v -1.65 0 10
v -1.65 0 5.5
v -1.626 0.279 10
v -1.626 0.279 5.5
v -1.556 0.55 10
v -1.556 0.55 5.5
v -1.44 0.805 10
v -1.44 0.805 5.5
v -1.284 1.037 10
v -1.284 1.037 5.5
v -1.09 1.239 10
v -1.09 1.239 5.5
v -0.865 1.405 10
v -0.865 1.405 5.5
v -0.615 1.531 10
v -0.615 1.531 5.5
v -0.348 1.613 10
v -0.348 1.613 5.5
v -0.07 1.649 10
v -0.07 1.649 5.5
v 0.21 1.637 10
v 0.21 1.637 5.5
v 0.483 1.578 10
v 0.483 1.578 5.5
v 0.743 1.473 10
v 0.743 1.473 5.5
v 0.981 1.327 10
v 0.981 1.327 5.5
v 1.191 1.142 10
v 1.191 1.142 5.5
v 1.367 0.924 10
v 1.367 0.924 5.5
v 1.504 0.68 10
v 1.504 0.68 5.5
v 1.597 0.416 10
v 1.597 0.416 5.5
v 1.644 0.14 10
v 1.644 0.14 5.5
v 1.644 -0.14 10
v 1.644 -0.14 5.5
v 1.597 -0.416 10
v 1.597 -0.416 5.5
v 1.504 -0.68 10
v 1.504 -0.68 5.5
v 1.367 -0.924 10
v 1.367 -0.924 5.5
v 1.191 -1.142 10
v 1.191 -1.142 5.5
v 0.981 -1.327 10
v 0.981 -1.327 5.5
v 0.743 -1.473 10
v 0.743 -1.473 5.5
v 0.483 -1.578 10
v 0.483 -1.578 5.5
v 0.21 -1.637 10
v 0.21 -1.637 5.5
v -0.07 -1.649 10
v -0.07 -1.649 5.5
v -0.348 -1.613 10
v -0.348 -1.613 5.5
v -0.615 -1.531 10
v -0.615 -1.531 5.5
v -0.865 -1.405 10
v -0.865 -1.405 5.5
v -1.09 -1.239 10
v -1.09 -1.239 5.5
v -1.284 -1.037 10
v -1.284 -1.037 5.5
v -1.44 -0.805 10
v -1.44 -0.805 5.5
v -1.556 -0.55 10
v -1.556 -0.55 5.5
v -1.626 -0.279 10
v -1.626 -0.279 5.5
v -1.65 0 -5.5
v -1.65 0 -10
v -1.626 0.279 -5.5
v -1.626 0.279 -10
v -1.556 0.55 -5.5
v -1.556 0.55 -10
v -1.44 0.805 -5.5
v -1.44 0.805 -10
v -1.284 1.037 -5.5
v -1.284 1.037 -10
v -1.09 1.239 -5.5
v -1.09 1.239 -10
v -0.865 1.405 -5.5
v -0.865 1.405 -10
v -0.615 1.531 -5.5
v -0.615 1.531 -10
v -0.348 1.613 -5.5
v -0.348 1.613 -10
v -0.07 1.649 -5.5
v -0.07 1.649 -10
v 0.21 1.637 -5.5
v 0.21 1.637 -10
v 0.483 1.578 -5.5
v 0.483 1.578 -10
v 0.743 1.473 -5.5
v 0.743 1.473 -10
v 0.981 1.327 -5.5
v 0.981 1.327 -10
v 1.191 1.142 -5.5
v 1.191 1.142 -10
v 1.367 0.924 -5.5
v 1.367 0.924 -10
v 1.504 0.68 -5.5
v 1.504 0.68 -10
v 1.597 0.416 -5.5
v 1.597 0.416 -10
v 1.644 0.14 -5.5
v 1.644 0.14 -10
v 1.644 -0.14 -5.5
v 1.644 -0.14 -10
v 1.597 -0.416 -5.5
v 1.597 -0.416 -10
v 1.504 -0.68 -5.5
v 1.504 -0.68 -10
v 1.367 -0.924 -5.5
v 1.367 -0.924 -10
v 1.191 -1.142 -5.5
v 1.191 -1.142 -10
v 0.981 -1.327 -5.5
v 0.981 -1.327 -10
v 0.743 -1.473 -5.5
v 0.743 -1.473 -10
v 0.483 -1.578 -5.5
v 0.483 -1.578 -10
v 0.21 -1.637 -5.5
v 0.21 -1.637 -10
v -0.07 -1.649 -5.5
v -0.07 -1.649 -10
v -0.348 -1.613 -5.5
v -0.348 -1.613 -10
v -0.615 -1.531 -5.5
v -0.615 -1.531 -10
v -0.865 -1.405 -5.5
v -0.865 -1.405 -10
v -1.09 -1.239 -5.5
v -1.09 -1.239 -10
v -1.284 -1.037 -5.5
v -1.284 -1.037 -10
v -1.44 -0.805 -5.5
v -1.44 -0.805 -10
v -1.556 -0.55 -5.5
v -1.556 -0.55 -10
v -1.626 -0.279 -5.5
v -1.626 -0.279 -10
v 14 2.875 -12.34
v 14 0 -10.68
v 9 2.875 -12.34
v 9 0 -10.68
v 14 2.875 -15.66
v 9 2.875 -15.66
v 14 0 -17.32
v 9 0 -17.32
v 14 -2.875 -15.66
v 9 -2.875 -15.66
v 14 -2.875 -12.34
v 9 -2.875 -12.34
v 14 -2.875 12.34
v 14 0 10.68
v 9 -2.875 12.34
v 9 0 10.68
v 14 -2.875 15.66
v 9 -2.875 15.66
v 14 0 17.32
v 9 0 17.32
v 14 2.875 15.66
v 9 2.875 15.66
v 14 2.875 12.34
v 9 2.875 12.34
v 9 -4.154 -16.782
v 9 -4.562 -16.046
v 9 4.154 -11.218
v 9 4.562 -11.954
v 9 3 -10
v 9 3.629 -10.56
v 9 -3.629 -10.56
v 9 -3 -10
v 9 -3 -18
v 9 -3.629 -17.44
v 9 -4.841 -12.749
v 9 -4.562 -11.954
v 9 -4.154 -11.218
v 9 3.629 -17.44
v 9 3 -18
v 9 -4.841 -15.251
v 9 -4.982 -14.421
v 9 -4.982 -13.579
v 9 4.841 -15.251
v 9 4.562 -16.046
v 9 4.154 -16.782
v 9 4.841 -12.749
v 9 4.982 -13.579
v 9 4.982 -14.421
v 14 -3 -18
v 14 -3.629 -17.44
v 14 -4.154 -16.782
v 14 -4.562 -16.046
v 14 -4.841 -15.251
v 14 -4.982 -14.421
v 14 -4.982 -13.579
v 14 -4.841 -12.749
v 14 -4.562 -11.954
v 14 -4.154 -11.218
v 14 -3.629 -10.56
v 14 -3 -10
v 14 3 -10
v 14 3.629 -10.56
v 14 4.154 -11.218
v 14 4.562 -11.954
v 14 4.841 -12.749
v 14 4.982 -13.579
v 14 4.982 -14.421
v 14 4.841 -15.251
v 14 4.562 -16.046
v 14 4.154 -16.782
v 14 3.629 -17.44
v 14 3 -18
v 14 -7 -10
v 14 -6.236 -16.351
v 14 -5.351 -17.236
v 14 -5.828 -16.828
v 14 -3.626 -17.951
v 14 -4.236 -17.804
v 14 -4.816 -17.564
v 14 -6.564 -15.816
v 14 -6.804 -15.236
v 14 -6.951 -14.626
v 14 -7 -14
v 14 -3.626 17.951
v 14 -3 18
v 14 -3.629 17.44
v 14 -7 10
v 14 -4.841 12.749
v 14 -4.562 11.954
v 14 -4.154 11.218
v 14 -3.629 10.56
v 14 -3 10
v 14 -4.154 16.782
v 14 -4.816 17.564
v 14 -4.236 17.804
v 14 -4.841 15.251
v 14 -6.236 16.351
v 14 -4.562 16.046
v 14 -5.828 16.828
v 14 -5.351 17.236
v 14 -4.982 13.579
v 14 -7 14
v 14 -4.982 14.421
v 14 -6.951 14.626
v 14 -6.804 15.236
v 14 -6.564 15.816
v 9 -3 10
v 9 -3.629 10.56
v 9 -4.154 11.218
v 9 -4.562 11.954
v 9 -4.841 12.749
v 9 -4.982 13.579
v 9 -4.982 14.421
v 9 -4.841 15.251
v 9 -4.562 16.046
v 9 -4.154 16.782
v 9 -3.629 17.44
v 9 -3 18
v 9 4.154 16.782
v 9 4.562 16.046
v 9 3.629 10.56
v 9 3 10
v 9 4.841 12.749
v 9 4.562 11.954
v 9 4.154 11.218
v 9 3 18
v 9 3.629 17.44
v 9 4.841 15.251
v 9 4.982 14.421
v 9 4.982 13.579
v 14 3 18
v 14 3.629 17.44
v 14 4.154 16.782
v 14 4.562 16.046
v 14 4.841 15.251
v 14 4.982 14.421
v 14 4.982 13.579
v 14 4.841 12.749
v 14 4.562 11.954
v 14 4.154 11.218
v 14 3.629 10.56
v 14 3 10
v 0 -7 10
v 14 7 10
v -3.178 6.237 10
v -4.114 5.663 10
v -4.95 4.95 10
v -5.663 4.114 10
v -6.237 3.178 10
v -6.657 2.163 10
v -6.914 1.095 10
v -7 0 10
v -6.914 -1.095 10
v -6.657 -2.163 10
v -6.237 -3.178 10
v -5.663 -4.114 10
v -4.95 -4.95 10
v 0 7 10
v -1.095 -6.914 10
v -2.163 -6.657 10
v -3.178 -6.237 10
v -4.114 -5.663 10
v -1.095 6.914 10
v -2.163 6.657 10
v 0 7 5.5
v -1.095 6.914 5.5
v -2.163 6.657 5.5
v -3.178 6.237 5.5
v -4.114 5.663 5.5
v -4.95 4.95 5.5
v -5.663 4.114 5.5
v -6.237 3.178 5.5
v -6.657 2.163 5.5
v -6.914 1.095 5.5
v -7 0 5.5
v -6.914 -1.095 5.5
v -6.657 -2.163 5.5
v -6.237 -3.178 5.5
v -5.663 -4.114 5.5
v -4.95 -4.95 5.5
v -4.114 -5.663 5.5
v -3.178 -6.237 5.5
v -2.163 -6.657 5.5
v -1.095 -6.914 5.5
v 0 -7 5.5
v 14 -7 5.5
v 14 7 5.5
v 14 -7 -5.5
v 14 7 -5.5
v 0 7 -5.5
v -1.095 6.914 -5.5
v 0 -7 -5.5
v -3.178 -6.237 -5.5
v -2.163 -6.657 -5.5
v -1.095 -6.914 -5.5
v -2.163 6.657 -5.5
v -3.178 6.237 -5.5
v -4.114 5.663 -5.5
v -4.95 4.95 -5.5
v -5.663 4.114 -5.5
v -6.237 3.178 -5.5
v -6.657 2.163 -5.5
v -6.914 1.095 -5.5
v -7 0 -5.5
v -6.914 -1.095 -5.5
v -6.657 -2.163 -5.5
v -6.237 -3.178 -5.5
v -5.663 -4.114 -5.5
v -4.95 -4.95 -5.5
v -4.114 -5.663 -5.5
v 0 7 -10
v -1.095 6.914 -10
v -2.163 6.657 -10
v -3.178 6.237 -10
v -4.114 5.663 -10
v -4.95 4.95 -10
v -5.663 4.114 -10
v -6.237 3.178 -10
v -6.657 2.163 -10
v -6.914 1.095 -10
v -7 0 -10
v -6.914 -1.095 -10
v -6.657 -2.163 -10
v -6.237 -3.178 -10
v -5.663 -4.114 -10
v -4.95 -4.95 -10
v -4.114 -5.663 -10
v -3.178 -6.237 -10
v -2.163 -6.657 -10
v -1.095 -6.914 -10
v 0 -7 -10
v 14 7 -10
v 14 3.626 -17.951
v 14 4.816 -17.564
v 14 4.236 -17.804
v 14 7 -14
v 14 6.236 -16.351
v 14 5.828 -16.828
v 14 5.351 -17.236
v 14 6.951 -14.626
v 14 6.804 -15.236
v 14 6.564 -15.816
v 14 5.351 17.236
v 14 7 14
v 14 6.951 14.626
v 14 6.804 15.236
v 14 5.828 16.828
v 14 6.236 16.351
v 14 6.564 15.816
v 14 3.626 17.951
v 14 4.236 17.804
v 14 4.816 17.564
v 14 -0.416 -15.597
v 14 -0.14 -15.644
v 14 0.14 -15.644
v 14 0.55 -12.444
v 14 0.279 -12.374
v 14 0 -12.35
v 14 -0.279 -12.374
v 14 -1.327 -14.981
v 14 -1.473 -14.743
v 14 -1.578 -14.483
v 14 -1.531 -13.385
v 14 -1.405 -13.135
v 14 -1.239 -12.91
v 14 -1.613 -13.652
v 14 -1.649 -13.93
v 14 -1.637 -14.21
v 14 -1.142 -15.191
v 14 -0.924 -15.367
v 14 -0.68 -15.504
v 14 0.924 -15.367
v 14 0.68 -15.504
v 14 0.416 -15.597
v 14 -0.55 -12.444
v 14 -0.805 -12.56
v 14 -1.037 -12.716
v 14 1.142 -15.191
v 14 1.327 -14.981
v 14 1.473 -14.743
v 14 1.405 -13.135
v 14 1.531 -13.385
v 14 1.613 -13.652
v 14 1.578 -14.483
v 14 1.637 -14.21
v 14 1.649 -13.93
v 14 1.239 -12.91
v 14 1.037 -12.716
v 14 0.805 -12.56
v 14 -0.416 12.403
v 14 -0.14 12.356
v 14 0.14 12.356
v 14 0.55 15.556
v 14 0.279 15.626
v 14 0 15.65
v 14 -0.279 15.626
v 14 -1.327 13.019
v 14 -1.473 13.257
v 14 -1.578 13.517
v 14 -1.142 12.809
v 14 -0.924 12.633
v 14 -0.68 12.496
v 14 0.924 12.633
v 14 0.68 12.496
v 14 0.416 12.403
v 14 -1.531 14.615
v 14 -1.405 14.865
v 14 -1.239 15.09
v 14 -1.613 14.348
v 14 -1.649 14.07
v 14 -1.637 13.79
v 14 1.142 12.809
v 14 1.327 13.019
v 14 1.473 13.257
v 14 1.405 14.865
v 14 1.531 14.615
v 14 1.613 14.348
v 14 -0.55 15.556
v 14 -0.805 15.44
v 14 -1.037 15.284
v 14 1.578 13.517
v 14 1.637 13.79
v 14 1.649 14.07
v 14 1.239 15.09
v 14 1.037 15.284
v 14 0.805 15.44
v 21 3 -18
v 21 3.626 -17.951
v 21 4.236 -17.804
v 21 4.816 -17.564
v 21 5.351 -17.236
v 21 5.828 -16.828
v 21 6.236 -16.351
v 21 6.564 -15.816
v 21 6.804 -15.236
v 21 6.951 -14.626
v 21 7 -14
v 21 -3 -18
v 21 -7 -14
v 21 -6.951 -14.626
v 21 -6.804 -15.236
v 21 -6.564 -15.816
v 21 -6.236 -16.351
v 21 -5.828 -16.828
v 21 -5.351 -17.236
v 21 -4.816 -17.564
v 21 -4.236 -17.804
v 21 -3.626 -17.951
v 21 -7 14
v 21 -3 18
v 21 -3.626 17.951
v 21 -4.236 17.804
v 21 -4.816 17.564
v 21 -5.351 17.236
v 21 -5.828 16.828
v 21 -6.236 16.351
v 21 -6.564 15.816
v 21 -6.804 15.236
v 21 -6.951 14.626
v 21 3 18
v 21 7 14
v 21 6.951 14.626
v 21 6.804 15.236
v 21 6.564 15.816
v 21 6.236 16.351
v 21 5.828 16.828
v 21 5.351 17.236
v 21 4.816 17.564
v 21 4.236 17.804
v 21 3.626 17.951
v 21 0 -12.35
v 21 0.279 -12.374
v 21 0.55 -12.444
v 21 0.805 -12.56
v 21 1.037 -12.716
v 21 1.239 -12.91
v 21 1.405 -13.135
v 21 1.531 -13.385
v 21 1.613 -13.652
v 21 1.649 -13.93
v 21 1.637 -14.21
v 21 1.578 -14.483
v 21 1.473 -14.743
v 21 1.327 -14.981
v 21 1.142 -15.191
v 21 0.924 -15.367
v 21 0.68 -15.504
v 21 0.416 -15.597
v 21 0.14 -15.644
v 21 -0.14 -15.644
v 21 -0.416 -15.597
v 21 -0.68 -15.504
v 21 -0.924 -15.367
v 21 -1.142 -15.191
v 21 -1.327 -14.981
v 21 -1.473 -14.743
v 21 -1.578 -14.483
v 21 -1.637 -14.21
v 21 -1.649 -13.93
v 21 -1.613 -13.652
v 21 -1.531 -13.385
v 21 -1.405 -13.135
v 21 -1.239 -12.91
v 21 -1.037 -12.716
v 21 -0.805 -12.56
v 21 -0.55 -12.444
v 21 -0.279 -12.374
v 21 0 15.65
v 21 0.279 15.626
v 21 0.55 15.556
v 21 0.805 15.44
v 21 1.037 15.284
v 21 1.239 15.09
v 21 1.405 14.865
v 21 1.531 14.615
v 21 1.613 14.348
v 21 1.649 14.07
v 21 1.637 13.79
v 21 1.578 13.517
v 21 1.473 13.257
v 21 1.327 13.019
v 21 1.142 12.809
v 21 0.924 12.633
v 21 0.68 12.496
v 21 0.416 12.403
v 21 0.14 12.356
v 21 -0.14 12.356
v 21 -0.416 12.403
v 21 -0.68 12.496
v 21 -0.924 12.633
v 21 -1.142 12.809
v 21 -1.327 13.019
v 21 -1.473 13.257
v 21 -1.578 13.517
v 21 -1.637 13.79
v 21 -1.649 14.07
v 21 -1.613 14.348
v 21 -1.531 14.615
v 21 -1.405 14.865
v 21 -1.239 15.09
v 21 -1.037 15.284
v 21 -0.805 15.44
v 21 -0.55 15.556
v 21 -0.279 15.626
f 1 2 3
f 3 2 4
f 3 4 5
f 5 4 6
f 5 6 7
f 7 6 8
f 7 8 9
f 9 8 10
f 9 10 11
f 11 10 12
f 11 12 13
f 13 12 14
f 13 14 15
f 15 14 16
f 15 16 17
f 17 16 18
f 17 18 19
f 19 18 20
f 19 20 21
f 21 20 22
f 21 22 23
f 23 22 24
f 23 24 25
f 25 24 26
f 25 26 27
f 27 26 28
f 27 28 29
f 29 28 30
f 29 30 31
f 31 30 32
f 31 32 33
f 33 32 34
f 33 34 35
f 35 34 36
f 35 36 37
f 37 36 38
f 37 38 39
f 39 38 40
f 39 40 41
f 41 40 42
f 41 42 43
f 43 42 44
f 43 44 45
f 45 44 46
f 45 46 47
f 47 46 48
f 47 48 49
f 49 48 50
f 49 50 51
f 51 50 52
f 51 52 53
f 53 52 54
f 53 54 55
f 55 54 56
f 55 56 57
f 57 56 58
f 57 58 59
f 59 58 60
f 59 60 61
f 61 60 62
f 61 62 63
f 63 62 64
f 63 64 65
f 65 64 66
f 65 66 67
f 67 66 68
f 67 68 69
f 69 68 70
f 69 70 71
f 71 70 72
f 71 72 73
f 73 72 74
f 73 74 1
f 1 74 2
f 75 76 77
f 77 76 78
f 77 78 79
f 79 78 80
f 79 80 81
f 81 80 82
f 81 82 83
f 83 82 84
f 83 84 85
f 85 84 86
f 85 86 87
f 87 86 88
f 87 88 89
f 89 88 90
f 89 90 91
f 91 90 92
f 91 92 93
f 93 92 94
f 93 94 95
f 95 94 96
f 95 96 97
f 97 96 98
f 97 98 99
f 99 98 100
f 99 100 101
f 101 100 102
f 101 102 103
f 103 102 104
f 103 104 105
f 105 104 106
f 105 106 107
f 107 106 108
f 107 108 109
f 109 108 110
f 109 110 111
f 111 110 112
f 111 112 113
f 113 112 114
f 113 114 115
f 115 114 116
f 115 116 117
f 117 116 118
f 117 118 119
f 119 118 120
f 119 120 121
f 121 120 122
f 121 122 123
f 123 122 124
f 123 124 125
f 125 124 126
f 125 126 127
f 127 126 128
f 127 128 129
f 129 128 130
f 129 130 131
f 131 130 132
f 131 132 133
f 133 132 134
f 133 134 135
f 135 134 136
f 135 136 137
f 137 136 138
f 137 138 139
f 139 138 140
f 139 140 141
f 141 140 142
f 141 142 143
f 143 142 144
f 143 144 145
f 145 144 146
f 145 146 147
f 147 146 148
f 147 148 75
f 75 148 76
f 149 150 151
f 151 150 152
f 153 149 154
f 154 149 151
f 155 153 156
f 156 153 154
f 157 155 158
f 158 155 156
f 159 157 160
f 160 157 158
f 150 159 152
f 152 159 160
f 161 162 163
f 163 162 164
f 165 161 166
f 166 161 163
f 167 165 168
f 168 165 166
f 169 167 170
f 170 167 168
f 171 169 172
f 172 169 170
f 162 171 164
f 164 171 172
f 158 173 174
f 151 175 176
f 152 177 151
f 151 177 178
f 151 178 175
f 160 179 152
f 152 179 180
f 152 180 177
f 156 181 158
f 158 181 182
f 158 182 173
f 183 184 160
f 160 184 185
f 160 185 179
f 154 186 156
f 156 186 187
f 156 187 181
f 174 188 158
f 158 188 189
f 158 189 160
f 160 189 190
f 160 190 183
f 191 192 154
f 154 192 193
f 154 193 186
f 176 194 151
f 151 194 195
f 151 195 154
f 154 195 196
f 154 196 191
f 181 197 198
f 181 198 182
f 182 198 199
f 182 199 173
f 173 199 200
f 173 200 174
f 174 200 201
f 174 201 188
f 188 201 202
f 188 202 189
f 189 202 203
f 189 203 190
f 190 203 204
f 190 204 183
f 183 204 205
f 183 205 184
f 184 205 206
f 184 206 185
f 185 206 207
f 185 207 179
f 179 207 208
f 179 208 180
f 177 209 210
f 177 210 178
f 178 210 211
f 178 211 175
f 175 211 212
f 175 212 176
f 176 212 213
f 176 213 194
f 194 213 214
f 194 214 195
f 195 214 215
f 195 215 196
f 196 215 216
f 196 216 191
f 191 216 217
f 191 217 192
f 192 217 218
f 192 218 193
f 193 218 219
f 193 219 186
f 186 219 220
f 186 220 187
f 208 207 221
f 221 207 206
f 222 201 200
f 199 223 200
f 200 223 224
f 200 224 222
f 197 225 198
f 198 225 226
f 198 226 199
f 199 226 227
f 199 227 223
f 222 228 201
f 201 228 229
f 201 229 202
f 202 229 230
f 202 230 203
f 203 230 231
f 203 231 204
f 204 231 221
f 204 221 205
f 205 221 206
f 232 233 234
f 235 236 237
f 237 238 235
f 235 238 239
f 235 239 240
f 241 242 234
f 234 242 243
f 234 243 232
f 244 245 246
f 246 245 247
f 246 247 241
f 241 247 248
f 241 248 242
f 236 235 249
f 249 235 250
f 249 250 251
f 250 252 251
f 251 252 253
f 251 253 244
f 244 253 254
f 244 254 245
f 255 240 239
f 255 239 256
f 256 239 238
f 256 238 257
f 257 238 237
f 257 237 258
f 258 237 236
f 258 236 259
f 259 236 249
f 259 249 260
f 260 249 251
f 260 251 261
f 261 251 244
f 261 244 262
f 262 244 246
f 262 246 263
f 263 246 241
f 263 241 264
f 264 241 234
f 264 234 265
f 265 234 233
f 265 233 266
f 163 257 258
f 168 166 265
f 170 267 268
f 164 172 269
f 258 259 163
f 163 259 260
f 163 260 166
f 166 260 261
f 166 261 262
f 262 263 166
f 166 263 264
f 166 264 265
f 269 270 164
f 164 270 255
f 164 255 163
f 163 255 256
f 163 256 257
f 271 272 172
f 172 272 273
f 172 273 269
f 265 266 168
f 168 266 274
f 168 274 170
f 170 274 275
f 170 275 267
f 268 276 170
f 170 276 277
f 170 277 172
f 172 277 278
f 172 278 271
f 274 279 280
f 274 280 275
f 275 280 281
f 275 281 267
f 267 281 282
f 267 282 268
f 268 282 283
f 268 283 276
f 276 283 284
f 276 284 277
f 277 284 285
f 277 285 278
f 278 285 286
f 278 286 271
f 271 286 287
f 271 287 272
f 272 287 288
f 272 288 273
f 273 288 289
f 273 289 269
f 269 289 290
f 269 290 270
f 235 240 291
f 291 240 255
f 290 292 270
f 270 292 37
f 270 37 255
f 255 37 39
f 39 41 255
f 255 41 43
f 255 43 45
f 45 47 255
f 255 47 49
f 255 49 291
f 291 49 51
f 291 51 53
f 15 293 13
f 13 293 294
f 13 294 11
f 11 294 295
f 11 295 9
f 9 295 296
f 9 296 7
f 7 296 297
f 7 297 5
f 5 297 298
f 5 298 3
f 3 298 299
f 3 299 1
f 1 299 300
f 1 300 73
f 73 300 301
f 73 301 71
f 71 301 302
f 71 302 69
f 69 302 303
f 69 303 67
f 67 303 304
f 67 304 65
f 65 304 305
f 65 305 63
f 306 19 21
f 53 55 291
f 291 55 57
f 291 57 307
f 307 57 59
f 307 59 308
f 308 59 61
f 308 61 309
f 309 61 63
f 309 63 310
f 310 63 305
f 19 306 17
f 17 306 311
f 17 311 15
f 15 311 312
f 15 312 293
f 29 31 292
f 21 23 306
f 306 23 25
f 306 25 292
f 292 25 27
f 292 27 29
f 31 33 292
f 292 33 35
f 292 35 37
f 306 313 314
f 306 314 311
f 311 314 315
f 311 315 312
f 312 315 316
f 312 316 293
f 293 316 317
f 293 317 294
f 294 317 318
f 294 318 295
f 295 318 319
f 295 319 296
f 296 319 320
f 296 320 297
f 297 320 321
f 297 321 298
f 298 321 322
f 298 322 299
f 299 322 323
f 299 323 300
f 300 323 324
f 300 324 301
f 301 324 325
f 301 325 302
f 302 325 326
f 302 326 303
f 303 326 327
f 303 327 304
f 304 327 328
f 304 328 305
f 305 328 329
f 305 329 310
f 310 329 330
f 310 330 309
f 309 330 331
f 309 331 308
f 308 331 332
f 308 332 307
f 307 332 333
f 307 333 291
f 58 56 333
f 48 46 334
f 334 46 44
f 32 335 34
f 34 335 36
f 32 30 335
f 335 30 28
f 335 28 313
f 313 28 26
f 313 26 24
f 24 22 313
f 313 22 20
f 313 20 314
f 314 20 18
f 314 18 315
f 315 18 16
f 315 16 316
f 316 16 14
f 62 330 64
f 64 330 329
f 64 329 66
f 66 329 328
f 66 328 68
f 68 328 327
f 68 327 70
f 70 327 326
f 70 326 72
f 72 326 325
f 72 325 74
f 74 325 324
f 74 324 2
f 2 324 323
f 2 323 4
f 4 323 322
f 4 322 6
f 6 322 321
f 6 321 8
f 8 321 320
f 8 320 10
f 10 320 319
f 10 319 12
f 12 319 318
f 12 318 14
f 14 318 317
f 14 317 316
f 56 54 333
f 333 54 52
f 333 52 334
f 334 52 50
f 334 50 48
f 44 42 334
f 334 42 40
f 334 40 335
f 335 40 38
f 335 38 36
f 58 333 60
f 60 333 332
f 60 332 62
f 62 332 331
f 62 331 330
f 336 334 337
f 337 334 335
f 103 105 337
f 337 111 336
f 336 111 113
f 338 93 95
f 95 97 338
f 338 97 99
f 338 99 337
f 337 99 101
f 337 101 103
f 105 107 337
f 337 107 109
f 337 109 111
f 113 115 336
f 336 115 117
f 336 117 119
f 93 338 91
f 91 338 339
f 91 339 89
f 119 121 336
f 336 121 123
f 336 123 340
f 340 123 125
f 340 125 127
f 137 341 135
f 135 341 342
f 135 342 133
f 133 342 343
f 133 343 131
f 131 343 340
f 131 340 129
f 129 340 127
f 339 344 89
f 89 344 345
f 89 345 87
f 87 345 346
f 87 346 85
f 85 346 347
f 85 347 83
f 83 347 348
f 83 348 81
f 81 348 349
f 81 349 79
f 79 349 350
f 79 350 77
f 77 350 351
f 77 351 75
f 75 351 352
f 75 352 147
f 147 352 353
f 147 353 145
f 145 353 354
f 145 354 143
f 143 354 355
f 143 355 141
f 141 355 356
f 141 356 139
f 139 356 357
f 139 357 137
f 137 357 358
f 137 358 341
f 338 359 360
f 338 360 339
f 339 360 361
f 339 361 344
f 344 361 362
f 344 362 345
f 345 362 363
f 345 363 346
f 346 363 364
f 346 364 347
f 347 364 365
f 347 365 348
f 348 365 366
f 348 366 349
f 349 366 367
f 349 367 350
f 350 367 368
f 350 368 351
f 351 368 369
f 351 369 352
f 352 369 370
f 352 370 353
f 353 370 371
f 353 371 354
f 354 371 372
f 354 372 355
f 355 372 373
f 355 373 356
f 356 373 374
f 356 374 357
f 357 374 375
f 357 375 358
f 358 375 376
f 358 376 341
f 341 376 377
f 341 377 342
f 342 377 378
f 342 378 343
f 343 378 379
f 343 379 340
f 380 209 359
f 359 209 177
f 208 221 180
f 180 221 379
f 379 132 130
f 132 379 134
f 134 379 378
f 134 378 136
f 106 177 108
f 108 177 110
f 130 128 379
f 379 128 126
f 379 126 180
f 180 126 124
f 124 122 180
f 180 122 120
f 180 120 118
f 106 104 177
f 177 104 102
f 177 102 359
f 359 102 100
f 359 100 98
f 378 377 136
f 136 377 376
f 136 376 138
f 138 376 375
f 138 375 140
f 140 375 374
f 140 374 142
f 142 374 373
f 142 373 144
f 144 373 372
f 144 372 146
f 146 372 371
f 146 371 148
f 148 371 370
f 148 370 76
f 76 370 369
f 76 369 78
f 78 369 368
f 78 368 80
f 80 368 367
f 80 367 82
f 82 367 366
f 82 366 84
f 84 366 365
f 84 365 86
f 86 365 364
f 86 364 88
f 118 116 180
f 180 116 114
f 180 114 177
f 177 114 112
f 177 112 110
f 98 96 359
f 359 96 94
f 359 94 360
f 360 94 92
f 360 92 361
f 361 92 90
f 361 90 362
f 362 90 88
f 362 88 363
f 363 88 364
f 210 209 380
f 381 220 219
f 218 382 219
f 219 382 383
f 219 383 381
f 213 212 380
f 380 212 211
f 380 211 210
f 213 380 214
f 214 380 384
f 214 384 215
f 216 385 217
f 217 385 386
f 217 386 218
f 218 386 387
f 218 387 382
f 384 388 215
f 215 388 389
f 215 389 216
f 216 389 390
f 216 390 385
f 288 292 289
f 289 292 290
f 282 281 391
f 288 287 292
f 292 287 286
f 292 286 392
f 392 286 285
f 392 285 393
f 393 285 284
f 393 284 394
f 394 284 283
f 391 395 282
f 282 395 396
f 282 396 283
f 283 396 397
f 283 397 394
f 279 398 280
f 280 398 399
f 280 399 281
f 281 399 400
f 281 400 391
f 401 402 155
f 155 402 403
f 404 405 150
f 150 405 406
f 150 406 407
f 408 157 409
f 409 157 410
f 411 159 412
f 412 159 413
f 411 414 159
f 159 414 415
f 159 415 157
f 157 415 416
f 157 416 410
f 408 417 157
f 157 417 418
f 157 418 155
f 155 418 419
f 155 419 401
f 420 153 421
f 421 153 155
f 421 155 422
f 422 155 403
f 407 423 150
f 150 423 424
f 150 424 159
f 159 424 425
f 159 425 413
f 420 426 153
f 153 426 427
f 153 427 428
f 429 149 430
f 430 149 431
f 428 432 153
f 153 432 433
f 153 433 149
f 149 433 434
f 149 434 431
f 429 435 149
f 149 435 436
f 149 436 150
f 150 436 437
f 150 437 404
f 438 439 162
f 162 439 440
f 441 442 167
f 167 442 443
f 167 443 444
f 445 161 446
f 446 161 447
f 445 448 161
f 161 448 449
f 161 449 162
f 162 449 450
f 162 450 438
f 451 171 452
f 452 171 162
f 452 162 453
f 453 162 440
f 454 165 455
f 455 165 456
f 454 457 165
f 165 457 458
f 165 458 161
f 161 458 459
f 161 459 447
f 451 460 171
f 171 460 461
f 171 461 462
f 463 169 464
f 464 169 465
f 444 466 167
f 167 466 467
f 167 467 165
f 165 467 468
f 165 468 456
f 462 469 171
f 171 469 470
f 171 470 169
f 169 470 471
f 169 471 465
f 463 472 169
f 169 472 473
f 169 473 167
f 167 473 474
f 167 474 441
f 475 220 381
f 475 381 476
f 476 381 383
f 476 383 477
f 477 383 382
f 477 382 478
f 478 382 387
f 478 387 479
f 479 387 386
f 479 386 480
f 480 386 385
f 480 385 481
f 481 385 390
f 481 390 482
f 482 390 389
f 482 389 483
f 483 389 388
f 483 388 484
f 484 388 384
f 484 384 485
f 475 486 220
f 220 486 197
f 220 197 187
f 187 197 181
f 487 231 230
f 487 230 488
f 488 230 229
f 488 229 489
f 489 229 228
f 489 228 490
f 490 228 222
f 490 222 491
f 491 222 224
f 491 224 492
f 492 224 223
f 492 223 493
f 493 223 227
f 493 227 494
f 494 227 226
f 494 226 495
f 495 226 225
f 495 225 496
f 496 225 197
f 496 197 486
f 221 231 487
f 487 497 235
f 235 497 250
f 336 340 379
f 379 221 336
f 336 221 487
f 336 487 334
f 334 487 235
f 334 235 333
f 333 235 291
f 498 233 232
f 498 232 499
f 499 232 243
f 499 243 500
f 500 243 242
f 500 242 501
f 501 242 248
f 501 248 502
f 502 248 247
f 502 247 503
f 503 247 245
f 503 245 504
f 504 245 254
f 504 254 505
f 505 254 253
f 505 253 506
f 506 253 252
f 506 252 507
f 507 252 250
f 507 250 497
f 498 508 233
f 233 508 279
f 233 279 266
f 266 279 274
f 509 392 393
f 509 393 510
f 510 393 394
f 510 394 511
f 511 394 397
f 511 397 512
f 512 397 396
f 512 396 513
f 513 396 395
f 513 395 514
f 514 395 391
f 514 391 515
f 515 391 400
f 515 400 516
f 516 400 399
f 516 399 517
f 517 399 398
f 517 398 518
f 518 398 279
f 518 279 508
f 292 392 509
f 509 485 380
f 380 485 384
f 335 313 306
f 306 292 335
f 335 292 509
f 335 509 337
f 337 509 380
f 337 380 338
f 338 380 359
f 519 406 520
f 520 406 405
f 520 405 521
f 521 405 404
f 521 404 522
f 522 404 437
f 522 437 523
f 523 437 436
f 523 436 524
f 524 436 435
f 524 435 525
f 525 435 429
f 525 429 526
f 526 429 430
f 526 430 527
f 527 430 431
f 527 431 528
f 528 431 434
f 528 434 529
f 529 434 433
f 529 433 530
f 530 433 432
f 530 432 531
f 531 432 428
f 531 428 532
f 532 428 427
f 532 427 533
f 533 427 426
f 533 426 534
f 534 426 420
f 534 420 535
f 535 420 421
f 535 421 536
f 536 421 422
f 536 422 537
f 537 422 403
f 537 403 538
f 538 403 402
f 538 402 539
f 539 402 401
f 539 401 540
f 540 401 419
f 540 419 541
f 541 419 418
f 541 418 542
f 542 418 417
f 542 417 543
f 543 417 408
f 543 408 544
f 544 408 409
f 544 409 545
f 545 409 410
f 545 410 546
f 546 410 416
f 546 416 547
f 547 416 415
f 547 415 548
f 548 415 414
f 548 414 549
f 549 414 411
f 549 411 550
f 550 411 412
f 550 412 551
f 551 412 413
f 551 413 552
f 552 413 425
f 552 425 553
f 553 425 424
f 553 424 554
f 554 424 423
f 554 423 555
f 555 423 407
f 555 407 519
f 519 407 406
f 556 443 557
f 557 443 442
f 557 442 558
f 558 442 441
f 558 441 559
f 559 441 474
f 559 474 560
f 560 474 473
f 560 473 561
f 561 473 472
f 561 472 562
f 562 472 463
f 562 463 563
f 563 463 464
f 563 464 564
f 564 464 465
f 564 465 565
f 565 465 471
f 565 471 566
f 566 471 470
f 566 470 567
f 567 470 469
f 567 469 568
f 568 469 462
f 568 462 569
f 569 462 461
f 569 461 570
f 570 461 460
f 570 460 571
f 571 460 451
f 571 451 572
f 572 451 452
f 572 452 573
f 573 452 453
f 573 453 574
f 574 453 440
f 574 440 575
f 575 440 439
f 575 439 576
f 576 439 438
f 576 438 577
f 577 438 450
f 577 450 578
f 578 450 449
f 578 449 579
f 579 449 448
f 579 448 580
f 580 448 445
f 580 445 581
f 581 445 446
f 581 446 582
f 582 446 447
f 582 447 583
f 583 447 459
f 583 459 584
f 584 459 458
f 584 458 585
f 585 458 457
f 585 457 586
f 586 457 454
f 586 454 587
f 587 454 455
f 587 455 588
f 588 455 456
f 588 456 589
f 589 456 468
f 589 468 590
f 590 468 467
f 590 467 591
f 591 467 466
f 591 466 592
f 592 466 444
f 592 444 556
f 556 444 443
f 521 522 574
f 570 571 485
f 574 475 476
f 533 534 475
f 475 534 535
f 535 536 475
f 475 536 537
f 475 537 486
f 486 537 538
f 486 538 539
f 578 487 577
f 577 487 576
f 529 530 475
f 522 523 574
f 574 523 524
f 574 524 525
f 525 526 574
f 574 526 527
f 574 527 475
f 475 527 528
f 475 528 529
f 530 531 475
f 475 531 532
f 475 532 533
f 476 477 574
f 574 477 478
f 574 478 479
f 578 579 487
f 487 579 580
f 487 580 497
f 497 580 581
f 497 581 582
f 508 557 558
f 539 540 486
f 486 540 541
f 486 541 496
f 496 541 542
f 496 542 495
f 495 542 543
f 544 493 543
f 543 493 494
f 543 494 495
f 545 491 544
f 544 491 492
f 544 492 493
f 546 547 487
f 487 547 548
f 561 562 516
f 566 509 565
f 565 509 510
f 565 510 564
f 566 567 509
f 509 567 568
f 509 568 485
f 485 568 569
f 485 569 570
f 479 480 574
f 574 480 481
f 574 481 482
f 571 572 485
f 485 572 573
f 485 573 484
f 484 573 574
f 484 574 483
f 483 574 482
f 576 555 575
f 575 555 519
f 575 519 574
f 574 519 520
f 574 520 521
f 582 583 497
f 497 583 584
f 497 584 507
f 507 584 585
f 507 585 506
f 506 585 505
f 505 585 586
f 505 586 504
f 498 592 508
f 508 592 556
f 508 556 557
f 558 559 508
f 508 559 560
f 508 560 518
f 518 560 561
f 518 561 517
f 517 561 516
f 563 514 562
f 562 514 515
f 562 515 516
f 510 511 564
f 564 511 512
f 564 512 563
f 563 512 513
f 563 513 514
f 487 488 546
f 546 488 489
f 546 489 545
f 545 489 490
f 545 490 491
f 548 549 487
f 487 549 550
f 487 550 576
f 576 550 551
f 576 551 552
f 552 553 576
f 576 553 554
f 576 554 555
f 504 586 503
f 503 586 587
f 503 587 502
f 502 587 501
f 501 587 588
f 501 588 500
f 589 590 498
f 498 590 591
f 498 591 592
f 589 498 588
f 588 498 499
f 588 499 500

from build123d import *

# Parameters (mm, degrees)
SKETCH1_R               = 1.65
BOSS_EXTRUDE1_DEPTH     = 10
CUT_EXTRUDE1_DEPTH      = 19.574175621
CUT_EXTRUDE1_DEPTH_BACK = 19.574175621
SKETCH2_W               = 21
SKETCH2_H               = 11
SKETCH4_W               = 36
SKETCH4_H               = 14
SKETCH4_R               = 1.65
BOSS_EXTRUDE2_DEPTH     = 7
BOSS_EXTRUDE3_DEPTH     = 5
FILLET1_R               = 4


with BuildPart() as part:
    # Sketch1 → Boss-Extrude1 (new, symmetric)
    with BuildSketch(Plane.XY):
        with BuildLine():
            Line((0, 7), (14, 7))
            Line((14, 7), (14, -7))
            Line((14, -7), (0, -7))
            ThreePointArc((0, -7), (-7, 0), (0, 7))
        make_face()
        Circle(SKETCH1_R, mode=Mode.SUBTRACT)
    extrude(amount=BOSS_EXTRUDE1_DEPTH, both=True)

    # Sketch2 → Cut-Extrude1 (cut, two sides: drawn at the far end of the back side and taken through both)
    with BuildSketch(Plane(origin=(0, 0, 0), x_dir=(1, 0, 0), z_dir=(0, 1, 0)).offset(-CUT_EXTRUDE1_DEPTH_BACK)):
        with Locations((3.5, 0)):
            Rectangle(SKETCH2_W, SKETCH2_H)
    extrude(amount=CUT_EXTRUDE1_DEPTH + CUT_EXTRUDE1_DEPTH_BACK, mode=Mode.SUBTRACT)


with BuildPart() as cut_extrude1_piece_1:
    # of the separate pieces the step leaves, piece 1, a body of its own (cut_extrude1_pieces)
    add(part.part.solids().sort_by_distance((0, 7, -10))[0])



with BuildPart() as cut_extrude1_piece_2:
    # of the separate pieces the step leaves, piece 2, a body of its own (cut_extrude1_pieces)
    add(part.part.solids().sort_by_distance((0, 7, 5.5))[0])


with BuildPart() as cut_extrude1_piece_1_1:
    add(cut_extrude1_piece_1.part)

    add(cut_extrude1_piece_2.part)  # Boss-Extrude2 merges Cut-Extrude1 piece 2
    # Sketch4 → Boss-Extrude2 (add)
    with BuildSketch(Plane(origin=(14, 0, 0), x_dir=(0, 0, -1), z_dir=(1, 0, 0))):
        Rectangle(SKETCH4_W, SKETCH4_H)
        with Locations((14, 0)):
            Circle(SKETCH4_R, mode=Mode.SUBTRACT)
        with Locations((-14, 0)):
            Circle(SKETCH4_R, mode=Mode.SUBTRACT)
    extrude(amount=BOSS_EXTRUDE2_DEPTH)

    # Sketch5 → Boss-Extrude3 (add)
    # profile 1 of 2: a face of its own
    with BuildSketch(Plane.ZY.offset(-14)):
        with BuildLine():
            Line((10, 3), (10, -3))
            ThreePointArc((10, -3), (14, -5), (18, -3))
            Line((18, -3), (18, 3))
            ThreePointArc((18, 3), (14, 5), (10, 3))
        make_face()
        Polygon((12.340117976, -2.875), (15.659882024, -2.875), (17.319764048, 0), (15.659882024, 2.875), (12.340117976, 2.875), (10.680235952, 0), align=None, mode=Mode.SUBTRACT)
    # profile 2 of 2: a face of its own
    with BuildSketch(Plane.ZY.offset(-14)):
        with BuildLine():
            Line((-18, 3), (-18, -3))
            ThreePointArc((-18, -3), (-14, -5), (-10, -3))
            Line((-10, -3), (-10, 3))
            ThreePointArc((-10, 3), (-14, 5), (-18, 3))
        make_face()
        Polygon((-10.680235952, 0), (-12.340117976, -2.875), (-15.659882024, -2.875), (-17.319764048, 0), (-15.659882024, 2.875), (-12.340117976, 2.875), align=None, mode=Mode.SUBTRACT)
    extrude(amount=BOSS_EXTRUDE3_DEPTH)

    # Fillet1
    fillet1_edges = [cut_extrude1_piece_1_1.edges().sort_by_distance(p)[0] for p in [
        (17.5, 7, 18),
        (17.5, -7, 18),
        (17.5, 7, -18),
        (17.5, -7, -18),
    ]]
    fillet(fillet1_edges, radius=FILLET1_R)


solid = cut_extrude1_piece_1_1.part
